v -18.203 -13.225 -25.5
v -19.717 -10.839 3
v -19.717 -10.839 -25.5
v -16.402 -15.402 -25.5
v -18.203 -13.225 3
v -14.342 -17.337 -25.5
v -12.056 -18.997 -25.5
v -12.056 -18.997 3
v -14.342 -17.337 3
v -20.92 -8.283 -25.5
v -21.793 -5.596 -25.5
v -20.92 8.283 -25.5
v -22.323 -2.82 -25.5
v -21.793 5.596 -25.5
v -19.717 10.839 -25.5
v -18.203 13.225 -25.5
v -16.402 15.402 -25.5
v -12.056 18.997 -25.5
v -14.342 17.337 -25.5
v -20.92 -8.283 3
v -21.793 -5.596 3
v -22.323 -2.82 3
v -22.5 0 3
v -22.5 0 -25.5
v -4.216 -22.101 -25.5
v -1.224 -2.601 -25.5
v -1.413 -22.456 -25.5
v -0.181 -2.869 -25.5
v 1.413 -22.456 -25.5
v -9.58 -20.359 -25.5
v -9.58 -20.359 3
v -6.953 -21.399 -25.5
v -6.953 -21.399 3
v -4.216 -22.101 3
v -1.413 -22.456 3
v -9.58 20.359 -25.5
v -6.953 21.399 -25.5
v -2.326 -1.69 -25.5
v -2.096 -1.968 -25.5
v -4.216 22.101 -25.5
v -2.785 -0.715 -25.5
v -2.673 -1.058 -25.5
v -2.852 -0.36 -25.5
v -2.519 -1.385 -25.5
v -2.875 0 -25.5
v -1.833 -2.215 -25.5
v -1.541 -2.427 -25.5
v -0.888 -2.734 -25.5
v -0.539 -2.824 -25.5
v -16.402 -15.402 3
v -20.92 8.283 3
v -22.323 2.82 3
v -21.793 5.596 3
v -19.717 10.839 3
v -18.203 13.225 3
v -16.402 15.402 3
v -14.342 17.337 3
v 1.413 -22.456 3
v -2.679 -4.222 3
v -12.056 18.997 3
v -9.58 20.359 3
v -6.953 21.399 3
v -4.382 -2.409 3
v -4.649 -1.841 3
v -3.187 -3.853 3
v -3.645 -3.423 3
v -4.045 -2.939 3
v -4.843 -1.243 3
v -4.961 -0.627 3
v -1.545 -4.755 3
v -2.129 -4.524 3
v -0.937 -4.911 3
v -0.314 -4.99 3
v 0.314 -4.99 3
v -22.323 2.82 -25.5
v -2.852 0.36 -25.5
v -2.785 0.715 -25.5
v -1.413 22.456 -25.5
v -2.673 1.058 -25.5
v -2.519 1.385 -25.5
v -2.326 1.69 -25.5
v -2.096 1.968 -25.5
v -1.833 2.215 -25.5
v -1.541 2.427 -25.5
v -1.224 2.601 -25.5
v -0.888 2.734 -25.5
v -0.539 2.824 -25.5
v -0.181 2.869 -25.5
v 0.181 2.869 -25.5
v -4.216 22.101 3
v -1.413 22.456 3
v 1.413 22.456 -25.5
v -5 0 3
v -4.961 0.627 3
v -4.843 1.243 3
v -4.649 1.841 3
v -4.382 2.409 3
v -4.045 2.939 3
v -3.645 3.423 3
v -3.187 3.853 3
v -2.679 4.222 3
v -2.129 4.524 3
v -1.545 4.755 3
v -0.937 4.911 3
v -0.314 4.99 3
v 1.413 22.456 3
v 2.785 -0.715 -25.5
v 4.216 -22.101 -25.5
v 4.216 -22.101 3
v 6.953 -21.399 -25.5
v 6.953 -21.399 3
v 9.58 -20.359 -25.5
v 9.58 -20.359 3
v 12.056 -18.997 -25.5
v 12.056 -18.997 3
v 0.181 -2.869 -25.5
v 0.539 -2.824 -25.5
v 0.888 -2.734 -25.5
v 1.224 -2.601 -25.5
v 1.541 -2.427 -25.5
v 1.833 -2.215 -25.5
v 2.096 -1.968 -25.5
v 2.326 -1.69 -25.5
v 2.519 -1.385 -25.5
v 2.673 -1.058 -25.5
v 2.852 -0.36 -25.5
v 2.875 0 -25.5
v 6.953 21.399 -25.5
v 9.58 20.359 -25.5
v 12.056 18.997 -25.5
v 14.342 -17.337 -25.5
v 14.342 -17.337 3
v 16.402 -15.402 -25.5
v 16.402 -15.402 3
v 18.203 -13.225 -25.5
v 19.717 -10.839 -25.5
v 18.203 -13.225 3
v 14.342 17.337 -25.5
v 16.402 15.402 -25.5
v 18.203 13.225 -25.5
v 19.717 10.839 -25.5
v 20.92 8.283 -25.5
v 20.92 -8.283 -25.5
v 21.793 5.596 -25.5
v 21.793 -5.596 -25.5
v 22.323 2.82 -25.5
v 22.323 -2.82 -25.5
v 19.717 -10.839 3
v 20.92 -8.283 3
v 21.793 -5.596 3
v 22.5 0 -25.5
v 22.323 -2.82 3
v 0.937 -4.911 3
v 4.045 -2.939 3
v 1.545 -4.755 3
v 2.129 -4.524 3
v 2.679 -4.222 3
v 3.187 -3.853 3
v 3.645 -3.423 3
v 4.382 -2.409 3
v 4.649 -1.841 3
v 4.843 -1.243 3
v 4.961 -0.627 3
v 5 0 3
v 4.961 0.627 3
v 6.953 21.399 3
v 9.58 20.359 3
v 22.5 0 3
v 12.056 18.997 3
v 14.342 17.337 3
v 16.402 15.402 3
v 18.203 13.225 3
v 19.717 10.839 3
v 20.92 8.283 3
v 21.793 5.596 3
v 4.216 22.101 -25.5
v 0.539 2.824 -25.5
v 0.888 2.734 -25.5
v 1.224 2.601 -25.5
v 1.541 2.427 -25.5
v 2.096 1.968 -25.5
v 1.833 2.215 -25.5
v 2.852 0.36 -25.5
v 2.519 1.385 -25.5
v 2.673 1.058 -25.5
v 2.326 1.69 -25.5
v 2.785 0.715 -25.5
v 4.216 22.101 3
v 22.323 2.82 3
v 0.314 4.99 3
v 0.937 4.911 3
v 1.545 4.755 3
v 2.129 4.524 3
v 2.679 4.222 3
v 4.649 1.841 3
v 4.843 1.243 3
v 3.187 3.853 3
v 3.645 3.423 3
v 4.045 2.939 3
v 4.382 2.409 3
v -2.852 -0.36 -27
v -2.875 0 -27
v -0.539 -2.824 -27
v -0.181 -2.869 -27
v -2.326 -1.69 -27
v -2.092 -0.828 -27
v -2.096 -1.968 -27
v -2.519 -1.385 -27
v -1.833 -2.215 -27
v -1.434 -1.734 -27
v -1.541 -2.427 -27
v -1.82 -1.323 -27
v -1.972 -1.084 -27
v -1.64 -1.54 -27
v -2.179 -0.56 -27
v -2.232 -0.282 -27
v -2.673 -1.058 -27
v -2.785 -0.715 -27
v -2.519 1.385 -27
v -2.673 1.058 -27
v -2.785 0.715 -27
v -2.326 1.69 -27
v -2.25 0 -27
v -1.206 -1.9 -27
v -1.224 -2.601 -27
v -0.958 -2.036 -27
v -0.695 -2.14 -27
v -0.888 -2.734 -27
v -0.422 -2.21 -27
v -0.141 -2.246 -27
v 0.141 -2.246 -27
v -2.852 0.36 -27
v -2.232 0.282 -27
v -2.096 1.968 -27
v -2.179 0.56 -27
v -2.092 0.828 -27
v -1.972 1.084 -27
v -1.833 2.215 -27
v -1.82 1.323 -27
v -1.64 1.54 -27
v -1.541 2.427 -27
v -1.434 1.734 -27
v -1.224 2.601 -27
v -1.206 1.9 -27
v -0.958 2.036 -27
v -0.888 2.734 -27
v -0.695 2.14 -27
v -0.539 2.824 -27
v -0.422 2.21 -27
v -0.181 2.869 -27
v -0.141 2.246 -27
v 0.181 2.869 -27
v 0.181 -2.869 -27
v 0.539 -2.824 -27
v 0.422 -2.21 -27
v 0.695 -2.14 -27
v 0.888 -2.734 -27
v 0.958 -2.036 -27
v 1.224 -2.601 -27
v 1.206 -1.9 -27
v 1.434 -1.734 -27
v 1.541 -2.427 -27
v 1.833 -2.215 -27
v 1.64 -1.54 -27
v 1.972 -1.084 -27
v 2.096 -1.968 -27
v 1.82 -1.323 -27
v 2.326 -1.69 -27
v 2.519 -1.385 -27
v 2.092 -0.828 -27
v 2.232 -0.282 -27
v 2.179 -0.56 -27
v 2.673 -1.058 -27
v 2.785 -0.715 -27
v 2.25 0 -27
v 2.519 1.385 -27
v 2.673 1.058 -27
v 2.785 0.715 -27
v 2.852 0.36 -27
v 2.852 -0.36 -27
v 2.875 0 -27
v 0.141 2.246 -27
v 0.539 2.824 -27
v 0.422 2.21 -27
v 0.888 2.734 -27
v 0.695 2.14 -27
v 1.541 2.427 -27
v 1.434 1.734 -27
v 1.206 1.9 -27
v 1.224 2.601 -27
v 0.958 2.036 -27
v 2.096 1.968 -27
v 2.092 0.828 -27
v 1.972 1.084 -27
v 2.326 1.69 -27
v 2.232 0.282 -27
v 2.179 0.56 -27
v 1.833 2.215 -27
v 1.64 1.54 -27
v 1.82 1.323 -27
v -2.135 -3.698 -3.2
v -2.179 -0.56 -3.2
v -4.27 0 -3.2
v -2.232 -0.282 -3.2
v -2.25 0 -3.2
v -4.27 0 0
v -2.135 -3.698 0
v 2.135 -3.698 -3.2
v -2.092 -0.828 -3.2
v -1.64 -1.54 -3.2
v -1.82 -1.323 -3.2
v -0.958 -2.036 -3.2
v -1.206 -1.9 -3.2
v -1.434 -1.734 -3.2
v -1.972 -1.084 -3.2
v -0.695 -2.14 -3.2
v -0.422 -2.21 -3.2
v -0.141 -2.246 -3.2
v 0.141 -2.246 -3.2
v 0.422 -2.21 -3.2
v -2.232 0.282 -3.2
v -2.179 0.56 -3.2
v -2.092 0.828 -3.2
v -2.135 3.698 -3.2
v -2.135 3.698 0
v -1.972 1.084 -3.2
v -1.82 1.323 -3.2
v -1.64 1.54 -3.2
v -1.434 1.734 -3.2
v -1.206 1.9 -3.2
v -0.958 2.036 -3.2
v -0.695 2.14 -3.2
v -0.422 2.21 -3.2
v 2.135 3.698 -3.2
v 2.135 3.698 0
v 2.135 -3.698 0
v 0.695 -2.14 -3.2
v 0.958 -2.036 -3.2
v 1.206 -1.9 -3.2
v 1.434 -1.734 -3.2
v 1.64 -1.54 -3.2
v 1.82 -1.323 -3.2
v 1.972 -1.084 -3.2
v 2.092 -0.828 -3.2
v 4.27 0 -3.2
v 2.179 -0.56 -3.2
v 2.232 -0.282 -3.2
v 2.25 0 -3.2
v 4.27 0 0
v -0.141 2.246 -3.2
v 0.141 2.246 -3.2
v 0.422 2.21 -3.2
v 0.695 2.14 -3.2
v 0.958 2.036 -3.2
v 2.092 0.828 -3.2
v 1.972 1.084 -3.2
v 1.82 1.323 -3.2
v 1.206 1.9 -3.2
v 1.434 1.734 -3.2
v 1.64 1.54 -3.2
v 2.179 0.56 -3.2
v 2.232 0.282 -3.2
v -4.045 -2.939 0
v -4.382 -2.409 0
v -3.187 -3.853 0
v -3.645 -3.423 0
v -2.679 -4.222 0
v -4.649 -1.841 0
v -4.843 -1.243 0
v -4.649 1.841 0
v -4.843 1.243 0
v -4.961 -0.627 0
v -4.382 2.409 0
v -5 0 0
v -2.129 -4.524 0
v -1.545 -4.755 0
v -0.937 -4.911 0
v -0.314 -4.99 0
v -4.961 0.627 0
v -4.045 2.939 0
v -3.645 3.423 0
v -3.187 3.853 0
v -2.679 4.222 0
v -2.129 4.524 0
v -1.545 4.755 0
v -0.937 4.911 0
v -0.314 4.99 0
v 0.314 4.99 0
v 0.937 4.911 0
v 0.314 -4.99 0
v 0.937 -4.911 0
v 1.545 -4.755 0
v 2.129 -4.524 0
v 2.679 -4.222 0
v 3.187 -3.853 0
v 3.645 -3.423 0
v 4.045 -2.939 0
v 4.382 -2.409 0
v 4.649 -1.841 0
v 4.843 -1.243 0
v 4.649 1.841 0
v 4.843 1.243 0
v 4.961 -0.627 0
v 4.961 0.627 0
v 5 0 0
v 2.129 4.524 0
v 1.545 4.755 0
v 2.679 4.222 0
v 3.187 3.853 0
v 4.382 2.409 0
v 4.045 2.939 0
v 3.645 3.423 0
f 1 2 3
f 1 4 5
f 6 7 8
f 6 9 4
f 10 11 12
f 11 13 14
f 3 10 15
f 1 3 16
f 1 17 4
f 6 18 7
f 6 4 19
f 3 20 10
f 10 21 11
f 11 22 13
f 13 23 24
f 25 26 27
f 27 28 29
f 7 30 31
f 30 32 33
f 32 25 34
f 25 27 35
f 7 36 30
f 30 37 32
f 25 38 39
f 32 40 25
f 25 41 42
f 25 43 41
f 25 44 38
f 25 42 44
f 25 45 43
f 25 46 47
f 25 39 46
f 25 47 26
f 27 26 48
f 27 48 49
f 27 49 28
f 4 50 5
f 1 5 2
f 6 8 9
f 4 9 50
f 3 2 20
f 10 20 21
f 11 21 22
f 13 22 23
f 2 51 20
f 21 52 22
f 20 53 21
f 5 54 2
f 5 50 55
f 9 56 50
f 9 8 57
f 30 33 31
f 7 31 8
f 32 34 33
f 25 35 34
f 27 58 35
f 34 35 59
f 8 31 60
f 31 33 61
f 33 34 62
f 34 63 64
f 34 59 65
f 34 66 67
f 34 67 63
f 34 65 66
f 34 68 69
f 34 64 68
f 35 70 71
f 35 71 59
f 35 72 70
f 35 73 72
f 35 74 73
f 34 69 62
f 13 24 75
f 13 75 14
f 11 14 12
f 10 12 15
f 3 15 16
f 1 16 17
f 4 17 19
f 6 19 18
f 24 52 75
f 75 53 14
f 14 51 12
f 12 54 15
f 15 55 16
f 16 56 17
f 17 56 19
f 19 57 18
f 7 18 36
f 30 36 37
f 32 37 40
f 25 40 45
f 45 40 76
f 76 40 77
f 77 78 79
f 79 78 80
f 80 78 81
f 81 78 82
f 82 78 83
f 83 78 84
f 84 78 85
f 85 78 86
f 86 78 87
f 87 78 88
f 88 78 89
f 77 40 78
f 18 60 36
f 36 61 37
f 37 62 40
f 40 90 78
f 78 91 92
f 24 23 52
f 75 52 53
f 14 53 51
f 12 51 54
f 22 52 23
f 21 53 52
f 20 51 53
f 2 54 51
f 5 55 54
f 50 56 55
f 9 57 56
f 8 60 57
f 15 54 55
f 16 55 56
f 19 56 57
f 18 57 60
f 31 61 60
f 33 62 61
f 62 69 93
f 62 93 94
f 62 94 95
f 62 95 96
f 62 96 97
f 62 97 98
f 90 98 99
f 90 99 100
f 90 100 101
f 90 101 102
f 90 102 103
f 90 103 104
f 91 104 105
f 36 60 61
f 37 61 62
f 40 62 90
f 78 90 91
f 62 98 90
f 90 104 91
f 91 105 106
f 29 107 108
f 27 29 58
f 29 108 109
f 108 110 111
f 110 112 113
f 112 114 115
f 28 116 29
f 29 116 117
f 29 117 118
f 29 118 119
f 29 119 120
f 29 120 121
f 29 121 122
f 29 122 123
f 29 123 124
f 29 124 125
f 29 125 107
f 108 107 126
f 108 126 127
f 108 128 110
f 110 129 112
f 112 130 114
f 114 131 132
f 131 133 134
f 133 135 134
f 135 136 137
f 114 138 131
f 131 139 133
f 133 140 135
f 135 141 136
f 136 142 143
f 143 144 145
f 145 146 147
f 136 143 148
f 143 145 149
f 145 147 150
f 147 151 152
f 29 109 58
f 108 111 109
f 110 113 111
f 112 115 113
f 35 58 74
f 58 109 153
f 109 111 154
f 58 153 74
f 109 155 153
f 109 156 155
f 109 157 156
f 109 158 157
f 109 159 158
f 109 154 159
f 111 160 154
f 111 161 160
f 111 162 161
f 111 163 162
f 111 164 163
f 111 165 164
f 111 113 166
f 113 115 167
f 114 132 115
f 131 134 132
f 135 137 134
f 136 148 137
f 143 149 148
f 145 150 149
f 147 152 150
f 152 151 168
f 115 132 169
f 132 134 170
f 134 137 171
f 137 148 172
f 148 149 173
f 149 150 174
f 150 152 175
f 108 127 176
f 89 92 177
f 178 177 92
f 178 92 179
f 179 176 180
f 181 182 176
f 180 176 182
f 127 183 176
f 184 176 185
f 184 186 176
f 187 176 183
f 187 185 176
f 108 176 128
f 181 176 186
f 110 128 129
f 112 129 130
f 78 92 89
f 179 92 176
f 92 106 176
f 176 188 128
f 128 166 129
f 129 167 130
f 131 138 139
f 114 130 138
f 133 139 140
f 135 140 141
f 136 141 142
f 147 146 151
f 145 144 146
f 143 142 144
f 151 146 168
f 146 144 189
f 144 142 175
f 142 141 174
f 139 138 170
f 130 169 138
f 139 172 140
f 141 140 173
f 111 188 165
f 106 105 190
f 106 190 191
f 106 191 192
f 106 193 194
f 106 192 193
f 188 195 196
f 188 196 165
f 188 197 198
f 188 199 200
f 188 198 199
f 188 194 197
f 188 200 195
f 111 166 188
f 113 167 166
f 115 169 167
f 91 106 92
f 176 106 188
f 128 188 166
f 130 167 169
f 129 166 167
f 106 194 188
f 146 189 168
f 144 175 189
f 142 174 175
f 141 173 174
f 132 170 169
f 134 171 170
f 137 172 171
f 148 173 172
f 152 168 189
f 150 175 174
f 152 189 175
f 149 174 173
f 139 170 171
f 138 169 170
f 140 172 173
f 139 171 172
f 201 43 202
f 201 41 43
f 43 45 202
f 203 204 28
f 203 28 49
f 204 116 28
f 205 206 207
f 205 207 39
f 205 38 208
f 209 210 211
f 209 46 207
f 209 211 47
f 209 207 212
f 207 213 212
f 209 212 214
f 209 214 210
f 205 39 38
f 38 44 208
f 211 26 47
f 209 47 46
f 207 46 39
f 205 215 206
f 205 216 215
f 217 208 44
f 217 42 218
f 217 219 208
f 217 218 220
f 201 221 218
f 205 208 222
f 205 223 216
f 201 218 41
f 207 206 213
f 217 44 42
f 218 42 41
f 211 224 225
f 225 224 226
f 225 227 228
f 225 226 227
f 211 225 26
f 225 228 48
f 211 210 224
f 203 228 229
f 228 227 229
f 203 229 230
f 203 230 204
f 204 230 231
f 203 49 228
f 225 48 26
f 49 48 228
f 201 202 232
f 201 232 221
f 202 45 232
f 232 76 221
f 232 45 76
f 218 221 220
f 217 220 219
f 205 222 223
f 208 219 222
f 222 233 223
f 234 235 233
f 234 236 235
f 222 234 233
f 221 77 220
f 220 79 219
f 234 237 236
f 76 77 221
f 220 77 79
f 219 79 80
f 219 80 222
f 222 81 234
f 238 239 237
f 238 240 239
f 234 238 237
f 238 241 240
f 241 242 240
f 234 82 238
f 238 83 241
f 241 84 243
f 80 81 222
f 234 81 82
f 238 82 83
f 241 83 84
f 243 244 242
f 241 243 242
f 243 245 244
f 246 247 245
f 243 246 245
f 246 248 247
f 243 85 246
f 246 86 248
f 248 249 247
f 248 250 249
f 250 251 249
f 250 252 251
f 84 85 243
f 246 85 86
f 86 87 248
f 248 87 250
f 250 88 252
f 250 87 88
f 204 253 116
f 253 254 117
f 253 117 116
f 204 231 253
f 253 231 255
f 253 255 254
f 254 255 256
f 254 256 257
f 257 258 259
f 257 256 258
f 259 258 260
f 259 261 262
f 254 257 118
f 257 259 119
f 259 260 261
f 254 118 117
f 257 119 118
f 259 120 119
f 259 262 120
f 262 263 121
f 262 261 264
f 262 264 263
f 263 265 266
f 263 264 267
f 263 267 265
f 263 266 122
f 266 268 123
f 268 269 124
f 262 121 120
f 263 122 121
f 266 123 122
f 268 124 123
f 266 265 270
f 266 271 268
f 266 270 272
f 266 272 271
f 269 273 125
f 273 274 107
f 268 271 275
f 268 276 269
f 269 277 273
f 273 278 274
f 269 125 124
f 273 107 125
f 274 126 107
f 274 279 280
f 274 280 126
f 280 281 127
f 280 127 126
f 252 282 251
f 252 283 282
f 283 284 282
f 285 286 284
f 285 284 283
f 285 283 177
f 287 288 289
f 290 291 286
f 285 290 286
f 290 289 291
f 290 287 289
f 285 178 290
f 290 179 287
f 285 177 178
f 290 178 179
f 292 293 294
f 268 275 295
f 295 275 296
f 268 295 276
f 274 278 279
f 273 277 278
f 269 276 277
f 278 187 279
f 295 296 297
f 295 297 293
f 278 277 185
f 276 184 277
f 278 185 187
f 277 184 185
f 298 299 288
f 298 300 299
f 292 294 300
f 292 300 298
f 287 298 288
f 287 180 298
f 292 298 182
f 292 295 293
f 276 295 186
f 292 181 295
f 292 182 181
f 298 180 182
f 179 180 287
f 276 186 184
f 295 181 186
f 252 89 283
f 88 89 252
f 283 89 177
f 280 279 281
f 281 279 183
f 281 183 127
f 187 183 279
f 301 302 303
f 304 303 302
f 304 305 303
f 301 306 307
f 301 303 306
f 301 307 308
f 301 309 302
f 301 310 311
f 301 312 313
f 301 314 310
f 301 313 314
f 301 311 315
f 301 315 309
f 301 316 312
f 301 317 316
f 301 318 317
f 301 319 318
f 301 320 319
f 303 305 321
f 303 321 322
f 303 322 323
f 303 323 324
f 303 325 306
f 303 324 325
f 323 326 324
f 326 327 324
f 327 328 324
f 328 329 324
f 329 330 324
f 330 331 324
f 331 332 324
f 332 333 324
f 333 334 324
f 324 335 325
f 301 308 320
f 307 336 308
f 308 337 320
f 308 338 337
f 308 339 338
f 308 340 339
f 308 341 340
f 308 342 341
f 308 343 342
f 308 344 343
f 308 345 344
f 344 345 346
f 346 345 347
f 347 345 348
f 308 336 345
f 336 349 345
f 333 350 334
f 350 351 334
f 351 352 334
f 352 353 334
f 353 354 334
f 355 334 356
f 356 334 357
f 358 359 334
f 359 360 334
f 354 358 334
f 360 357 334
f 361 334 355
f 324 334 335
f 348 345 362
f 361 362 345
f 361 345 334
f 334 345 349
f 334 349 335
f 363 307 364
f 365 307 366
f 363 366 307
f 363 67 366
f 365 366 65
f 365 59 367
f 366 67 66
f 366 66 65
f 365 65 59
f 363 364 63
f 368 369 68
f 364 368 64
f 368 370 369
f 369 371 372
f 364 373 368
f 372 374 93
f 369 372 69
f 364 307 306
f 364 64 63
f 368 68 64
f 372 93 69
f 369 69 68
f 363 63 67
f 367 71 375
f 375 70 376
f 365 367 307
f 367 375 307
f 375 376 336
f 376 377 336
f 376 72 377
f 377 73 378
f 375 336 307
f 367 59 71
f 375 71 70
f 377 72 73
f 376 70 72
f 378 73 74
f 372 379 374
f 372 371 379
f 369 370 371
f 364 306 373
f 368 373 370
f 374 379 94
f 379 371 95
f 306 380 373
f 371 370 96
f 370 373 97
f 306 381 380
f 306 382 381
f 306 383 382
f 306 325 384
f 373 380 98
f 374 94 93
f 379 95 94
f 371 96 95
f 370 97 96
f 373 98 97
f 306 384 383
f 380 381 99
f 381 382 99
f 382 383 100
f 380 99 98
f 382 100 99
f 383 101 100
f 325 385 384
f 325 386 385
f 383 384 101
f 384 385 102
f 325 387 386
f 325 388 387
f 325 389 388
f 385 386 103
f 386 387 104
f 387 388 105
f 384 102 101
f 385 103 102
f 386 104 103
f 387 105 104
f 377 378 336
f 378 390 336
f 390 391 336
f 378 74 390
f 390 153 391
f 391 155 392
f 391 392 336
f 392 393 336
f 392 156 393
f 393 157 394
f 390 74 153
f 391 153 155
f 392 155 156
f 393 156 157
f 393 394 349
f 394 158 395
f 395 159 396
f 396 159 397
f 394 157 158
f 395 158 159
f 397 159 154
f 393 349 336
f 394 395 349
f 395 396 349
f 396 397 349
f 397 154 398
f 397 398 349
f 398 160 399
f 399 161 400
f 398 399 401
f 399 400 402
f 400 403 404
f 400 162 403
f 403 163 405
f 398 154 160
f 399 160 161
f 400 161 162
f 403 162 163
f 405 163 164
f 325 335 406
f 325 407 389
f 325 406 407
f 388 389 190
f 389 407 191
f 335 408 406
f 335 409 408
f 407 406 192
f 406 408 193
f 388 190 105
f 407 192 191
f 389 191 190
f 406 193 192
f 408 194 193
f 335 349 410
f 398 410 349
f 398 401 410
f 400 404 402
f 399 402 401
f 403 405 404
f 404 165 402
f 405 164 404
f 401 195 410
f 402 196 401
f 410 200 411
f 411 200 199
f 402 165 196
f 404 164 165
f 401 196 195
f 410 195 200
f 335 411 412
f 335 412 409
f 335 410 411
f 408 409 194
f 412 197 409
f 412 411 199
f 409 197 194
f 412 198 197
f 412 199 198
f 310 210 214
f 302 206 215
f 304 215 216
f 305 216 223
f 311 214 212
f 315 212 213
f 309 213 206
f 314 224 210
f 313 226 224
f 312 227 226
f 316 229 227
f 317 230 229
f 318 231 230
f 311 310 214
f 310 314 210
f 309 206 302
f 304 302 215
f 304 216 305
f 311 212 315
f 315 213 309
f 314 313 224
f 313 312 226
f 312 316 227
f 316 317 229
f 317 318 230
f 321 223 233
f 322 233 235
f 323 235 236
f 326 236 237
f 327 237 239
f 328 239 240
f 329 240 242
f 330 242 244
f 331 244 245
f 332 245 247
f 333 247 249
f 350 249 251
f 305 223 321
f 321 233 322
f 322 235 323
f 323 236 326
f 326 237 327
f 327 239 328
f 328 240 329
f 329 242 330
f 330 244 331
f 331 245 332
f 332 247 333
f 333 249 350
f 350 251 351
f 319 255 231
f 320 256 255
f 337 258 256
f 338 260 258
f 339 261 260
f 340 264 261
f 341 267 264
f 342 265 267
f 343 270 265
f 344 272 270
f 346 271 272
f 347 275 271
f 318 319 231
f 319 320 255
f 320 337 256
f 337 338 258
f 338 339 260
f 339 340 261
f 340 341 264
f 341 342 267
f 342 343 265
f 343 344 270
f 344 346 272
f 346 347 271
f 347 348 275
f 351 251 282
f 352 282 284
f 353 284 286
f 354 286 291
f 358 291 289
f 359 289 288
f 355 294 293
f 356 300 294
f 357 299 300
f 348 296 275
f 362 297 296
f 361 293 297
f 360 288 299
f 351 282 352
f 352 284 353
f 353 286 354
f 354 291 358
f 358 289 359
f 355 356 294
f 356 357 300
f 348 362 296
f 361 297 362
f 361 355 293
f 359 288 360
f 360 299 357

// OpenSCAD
$fn = 50;

difference() {
	union() {
		translate(v = [0, 0, -25.5]) {
			cylinder(h = 28.5, r = 22.5);
		}
		#translate(v = [0, 0, -27.0]) {
			cylinder(h = 27, r = 2.875);
		}
	}
	union() {
		translate(v = [0, 0, 0]) {
			rotate(a = [0, 0, 0]) {
				difference() {
					union() {
						translate(v = [0, 0, -3.2]) {
							linear_extrude(height = 3.2) {
								polygon(points = [[4.2698, 0.0], [2.1349000000000005, 3.697755269078796], [-2.134899999999999, 3.6977552690787965], [-4.2698, 5.228996902999369e-16], [-2.134900000000002, -3.6977552690787956], [2.1348999999999974, -3.697755269078798]]);
							}
						}
					}
					union();
				}
			}
		}
		#cylinder(h = 3, r = 5.0);
		#translate(v = [0, 0, -100.0]) {
			cylinder(h = 200, r = 2.25);
		}
	}
}
